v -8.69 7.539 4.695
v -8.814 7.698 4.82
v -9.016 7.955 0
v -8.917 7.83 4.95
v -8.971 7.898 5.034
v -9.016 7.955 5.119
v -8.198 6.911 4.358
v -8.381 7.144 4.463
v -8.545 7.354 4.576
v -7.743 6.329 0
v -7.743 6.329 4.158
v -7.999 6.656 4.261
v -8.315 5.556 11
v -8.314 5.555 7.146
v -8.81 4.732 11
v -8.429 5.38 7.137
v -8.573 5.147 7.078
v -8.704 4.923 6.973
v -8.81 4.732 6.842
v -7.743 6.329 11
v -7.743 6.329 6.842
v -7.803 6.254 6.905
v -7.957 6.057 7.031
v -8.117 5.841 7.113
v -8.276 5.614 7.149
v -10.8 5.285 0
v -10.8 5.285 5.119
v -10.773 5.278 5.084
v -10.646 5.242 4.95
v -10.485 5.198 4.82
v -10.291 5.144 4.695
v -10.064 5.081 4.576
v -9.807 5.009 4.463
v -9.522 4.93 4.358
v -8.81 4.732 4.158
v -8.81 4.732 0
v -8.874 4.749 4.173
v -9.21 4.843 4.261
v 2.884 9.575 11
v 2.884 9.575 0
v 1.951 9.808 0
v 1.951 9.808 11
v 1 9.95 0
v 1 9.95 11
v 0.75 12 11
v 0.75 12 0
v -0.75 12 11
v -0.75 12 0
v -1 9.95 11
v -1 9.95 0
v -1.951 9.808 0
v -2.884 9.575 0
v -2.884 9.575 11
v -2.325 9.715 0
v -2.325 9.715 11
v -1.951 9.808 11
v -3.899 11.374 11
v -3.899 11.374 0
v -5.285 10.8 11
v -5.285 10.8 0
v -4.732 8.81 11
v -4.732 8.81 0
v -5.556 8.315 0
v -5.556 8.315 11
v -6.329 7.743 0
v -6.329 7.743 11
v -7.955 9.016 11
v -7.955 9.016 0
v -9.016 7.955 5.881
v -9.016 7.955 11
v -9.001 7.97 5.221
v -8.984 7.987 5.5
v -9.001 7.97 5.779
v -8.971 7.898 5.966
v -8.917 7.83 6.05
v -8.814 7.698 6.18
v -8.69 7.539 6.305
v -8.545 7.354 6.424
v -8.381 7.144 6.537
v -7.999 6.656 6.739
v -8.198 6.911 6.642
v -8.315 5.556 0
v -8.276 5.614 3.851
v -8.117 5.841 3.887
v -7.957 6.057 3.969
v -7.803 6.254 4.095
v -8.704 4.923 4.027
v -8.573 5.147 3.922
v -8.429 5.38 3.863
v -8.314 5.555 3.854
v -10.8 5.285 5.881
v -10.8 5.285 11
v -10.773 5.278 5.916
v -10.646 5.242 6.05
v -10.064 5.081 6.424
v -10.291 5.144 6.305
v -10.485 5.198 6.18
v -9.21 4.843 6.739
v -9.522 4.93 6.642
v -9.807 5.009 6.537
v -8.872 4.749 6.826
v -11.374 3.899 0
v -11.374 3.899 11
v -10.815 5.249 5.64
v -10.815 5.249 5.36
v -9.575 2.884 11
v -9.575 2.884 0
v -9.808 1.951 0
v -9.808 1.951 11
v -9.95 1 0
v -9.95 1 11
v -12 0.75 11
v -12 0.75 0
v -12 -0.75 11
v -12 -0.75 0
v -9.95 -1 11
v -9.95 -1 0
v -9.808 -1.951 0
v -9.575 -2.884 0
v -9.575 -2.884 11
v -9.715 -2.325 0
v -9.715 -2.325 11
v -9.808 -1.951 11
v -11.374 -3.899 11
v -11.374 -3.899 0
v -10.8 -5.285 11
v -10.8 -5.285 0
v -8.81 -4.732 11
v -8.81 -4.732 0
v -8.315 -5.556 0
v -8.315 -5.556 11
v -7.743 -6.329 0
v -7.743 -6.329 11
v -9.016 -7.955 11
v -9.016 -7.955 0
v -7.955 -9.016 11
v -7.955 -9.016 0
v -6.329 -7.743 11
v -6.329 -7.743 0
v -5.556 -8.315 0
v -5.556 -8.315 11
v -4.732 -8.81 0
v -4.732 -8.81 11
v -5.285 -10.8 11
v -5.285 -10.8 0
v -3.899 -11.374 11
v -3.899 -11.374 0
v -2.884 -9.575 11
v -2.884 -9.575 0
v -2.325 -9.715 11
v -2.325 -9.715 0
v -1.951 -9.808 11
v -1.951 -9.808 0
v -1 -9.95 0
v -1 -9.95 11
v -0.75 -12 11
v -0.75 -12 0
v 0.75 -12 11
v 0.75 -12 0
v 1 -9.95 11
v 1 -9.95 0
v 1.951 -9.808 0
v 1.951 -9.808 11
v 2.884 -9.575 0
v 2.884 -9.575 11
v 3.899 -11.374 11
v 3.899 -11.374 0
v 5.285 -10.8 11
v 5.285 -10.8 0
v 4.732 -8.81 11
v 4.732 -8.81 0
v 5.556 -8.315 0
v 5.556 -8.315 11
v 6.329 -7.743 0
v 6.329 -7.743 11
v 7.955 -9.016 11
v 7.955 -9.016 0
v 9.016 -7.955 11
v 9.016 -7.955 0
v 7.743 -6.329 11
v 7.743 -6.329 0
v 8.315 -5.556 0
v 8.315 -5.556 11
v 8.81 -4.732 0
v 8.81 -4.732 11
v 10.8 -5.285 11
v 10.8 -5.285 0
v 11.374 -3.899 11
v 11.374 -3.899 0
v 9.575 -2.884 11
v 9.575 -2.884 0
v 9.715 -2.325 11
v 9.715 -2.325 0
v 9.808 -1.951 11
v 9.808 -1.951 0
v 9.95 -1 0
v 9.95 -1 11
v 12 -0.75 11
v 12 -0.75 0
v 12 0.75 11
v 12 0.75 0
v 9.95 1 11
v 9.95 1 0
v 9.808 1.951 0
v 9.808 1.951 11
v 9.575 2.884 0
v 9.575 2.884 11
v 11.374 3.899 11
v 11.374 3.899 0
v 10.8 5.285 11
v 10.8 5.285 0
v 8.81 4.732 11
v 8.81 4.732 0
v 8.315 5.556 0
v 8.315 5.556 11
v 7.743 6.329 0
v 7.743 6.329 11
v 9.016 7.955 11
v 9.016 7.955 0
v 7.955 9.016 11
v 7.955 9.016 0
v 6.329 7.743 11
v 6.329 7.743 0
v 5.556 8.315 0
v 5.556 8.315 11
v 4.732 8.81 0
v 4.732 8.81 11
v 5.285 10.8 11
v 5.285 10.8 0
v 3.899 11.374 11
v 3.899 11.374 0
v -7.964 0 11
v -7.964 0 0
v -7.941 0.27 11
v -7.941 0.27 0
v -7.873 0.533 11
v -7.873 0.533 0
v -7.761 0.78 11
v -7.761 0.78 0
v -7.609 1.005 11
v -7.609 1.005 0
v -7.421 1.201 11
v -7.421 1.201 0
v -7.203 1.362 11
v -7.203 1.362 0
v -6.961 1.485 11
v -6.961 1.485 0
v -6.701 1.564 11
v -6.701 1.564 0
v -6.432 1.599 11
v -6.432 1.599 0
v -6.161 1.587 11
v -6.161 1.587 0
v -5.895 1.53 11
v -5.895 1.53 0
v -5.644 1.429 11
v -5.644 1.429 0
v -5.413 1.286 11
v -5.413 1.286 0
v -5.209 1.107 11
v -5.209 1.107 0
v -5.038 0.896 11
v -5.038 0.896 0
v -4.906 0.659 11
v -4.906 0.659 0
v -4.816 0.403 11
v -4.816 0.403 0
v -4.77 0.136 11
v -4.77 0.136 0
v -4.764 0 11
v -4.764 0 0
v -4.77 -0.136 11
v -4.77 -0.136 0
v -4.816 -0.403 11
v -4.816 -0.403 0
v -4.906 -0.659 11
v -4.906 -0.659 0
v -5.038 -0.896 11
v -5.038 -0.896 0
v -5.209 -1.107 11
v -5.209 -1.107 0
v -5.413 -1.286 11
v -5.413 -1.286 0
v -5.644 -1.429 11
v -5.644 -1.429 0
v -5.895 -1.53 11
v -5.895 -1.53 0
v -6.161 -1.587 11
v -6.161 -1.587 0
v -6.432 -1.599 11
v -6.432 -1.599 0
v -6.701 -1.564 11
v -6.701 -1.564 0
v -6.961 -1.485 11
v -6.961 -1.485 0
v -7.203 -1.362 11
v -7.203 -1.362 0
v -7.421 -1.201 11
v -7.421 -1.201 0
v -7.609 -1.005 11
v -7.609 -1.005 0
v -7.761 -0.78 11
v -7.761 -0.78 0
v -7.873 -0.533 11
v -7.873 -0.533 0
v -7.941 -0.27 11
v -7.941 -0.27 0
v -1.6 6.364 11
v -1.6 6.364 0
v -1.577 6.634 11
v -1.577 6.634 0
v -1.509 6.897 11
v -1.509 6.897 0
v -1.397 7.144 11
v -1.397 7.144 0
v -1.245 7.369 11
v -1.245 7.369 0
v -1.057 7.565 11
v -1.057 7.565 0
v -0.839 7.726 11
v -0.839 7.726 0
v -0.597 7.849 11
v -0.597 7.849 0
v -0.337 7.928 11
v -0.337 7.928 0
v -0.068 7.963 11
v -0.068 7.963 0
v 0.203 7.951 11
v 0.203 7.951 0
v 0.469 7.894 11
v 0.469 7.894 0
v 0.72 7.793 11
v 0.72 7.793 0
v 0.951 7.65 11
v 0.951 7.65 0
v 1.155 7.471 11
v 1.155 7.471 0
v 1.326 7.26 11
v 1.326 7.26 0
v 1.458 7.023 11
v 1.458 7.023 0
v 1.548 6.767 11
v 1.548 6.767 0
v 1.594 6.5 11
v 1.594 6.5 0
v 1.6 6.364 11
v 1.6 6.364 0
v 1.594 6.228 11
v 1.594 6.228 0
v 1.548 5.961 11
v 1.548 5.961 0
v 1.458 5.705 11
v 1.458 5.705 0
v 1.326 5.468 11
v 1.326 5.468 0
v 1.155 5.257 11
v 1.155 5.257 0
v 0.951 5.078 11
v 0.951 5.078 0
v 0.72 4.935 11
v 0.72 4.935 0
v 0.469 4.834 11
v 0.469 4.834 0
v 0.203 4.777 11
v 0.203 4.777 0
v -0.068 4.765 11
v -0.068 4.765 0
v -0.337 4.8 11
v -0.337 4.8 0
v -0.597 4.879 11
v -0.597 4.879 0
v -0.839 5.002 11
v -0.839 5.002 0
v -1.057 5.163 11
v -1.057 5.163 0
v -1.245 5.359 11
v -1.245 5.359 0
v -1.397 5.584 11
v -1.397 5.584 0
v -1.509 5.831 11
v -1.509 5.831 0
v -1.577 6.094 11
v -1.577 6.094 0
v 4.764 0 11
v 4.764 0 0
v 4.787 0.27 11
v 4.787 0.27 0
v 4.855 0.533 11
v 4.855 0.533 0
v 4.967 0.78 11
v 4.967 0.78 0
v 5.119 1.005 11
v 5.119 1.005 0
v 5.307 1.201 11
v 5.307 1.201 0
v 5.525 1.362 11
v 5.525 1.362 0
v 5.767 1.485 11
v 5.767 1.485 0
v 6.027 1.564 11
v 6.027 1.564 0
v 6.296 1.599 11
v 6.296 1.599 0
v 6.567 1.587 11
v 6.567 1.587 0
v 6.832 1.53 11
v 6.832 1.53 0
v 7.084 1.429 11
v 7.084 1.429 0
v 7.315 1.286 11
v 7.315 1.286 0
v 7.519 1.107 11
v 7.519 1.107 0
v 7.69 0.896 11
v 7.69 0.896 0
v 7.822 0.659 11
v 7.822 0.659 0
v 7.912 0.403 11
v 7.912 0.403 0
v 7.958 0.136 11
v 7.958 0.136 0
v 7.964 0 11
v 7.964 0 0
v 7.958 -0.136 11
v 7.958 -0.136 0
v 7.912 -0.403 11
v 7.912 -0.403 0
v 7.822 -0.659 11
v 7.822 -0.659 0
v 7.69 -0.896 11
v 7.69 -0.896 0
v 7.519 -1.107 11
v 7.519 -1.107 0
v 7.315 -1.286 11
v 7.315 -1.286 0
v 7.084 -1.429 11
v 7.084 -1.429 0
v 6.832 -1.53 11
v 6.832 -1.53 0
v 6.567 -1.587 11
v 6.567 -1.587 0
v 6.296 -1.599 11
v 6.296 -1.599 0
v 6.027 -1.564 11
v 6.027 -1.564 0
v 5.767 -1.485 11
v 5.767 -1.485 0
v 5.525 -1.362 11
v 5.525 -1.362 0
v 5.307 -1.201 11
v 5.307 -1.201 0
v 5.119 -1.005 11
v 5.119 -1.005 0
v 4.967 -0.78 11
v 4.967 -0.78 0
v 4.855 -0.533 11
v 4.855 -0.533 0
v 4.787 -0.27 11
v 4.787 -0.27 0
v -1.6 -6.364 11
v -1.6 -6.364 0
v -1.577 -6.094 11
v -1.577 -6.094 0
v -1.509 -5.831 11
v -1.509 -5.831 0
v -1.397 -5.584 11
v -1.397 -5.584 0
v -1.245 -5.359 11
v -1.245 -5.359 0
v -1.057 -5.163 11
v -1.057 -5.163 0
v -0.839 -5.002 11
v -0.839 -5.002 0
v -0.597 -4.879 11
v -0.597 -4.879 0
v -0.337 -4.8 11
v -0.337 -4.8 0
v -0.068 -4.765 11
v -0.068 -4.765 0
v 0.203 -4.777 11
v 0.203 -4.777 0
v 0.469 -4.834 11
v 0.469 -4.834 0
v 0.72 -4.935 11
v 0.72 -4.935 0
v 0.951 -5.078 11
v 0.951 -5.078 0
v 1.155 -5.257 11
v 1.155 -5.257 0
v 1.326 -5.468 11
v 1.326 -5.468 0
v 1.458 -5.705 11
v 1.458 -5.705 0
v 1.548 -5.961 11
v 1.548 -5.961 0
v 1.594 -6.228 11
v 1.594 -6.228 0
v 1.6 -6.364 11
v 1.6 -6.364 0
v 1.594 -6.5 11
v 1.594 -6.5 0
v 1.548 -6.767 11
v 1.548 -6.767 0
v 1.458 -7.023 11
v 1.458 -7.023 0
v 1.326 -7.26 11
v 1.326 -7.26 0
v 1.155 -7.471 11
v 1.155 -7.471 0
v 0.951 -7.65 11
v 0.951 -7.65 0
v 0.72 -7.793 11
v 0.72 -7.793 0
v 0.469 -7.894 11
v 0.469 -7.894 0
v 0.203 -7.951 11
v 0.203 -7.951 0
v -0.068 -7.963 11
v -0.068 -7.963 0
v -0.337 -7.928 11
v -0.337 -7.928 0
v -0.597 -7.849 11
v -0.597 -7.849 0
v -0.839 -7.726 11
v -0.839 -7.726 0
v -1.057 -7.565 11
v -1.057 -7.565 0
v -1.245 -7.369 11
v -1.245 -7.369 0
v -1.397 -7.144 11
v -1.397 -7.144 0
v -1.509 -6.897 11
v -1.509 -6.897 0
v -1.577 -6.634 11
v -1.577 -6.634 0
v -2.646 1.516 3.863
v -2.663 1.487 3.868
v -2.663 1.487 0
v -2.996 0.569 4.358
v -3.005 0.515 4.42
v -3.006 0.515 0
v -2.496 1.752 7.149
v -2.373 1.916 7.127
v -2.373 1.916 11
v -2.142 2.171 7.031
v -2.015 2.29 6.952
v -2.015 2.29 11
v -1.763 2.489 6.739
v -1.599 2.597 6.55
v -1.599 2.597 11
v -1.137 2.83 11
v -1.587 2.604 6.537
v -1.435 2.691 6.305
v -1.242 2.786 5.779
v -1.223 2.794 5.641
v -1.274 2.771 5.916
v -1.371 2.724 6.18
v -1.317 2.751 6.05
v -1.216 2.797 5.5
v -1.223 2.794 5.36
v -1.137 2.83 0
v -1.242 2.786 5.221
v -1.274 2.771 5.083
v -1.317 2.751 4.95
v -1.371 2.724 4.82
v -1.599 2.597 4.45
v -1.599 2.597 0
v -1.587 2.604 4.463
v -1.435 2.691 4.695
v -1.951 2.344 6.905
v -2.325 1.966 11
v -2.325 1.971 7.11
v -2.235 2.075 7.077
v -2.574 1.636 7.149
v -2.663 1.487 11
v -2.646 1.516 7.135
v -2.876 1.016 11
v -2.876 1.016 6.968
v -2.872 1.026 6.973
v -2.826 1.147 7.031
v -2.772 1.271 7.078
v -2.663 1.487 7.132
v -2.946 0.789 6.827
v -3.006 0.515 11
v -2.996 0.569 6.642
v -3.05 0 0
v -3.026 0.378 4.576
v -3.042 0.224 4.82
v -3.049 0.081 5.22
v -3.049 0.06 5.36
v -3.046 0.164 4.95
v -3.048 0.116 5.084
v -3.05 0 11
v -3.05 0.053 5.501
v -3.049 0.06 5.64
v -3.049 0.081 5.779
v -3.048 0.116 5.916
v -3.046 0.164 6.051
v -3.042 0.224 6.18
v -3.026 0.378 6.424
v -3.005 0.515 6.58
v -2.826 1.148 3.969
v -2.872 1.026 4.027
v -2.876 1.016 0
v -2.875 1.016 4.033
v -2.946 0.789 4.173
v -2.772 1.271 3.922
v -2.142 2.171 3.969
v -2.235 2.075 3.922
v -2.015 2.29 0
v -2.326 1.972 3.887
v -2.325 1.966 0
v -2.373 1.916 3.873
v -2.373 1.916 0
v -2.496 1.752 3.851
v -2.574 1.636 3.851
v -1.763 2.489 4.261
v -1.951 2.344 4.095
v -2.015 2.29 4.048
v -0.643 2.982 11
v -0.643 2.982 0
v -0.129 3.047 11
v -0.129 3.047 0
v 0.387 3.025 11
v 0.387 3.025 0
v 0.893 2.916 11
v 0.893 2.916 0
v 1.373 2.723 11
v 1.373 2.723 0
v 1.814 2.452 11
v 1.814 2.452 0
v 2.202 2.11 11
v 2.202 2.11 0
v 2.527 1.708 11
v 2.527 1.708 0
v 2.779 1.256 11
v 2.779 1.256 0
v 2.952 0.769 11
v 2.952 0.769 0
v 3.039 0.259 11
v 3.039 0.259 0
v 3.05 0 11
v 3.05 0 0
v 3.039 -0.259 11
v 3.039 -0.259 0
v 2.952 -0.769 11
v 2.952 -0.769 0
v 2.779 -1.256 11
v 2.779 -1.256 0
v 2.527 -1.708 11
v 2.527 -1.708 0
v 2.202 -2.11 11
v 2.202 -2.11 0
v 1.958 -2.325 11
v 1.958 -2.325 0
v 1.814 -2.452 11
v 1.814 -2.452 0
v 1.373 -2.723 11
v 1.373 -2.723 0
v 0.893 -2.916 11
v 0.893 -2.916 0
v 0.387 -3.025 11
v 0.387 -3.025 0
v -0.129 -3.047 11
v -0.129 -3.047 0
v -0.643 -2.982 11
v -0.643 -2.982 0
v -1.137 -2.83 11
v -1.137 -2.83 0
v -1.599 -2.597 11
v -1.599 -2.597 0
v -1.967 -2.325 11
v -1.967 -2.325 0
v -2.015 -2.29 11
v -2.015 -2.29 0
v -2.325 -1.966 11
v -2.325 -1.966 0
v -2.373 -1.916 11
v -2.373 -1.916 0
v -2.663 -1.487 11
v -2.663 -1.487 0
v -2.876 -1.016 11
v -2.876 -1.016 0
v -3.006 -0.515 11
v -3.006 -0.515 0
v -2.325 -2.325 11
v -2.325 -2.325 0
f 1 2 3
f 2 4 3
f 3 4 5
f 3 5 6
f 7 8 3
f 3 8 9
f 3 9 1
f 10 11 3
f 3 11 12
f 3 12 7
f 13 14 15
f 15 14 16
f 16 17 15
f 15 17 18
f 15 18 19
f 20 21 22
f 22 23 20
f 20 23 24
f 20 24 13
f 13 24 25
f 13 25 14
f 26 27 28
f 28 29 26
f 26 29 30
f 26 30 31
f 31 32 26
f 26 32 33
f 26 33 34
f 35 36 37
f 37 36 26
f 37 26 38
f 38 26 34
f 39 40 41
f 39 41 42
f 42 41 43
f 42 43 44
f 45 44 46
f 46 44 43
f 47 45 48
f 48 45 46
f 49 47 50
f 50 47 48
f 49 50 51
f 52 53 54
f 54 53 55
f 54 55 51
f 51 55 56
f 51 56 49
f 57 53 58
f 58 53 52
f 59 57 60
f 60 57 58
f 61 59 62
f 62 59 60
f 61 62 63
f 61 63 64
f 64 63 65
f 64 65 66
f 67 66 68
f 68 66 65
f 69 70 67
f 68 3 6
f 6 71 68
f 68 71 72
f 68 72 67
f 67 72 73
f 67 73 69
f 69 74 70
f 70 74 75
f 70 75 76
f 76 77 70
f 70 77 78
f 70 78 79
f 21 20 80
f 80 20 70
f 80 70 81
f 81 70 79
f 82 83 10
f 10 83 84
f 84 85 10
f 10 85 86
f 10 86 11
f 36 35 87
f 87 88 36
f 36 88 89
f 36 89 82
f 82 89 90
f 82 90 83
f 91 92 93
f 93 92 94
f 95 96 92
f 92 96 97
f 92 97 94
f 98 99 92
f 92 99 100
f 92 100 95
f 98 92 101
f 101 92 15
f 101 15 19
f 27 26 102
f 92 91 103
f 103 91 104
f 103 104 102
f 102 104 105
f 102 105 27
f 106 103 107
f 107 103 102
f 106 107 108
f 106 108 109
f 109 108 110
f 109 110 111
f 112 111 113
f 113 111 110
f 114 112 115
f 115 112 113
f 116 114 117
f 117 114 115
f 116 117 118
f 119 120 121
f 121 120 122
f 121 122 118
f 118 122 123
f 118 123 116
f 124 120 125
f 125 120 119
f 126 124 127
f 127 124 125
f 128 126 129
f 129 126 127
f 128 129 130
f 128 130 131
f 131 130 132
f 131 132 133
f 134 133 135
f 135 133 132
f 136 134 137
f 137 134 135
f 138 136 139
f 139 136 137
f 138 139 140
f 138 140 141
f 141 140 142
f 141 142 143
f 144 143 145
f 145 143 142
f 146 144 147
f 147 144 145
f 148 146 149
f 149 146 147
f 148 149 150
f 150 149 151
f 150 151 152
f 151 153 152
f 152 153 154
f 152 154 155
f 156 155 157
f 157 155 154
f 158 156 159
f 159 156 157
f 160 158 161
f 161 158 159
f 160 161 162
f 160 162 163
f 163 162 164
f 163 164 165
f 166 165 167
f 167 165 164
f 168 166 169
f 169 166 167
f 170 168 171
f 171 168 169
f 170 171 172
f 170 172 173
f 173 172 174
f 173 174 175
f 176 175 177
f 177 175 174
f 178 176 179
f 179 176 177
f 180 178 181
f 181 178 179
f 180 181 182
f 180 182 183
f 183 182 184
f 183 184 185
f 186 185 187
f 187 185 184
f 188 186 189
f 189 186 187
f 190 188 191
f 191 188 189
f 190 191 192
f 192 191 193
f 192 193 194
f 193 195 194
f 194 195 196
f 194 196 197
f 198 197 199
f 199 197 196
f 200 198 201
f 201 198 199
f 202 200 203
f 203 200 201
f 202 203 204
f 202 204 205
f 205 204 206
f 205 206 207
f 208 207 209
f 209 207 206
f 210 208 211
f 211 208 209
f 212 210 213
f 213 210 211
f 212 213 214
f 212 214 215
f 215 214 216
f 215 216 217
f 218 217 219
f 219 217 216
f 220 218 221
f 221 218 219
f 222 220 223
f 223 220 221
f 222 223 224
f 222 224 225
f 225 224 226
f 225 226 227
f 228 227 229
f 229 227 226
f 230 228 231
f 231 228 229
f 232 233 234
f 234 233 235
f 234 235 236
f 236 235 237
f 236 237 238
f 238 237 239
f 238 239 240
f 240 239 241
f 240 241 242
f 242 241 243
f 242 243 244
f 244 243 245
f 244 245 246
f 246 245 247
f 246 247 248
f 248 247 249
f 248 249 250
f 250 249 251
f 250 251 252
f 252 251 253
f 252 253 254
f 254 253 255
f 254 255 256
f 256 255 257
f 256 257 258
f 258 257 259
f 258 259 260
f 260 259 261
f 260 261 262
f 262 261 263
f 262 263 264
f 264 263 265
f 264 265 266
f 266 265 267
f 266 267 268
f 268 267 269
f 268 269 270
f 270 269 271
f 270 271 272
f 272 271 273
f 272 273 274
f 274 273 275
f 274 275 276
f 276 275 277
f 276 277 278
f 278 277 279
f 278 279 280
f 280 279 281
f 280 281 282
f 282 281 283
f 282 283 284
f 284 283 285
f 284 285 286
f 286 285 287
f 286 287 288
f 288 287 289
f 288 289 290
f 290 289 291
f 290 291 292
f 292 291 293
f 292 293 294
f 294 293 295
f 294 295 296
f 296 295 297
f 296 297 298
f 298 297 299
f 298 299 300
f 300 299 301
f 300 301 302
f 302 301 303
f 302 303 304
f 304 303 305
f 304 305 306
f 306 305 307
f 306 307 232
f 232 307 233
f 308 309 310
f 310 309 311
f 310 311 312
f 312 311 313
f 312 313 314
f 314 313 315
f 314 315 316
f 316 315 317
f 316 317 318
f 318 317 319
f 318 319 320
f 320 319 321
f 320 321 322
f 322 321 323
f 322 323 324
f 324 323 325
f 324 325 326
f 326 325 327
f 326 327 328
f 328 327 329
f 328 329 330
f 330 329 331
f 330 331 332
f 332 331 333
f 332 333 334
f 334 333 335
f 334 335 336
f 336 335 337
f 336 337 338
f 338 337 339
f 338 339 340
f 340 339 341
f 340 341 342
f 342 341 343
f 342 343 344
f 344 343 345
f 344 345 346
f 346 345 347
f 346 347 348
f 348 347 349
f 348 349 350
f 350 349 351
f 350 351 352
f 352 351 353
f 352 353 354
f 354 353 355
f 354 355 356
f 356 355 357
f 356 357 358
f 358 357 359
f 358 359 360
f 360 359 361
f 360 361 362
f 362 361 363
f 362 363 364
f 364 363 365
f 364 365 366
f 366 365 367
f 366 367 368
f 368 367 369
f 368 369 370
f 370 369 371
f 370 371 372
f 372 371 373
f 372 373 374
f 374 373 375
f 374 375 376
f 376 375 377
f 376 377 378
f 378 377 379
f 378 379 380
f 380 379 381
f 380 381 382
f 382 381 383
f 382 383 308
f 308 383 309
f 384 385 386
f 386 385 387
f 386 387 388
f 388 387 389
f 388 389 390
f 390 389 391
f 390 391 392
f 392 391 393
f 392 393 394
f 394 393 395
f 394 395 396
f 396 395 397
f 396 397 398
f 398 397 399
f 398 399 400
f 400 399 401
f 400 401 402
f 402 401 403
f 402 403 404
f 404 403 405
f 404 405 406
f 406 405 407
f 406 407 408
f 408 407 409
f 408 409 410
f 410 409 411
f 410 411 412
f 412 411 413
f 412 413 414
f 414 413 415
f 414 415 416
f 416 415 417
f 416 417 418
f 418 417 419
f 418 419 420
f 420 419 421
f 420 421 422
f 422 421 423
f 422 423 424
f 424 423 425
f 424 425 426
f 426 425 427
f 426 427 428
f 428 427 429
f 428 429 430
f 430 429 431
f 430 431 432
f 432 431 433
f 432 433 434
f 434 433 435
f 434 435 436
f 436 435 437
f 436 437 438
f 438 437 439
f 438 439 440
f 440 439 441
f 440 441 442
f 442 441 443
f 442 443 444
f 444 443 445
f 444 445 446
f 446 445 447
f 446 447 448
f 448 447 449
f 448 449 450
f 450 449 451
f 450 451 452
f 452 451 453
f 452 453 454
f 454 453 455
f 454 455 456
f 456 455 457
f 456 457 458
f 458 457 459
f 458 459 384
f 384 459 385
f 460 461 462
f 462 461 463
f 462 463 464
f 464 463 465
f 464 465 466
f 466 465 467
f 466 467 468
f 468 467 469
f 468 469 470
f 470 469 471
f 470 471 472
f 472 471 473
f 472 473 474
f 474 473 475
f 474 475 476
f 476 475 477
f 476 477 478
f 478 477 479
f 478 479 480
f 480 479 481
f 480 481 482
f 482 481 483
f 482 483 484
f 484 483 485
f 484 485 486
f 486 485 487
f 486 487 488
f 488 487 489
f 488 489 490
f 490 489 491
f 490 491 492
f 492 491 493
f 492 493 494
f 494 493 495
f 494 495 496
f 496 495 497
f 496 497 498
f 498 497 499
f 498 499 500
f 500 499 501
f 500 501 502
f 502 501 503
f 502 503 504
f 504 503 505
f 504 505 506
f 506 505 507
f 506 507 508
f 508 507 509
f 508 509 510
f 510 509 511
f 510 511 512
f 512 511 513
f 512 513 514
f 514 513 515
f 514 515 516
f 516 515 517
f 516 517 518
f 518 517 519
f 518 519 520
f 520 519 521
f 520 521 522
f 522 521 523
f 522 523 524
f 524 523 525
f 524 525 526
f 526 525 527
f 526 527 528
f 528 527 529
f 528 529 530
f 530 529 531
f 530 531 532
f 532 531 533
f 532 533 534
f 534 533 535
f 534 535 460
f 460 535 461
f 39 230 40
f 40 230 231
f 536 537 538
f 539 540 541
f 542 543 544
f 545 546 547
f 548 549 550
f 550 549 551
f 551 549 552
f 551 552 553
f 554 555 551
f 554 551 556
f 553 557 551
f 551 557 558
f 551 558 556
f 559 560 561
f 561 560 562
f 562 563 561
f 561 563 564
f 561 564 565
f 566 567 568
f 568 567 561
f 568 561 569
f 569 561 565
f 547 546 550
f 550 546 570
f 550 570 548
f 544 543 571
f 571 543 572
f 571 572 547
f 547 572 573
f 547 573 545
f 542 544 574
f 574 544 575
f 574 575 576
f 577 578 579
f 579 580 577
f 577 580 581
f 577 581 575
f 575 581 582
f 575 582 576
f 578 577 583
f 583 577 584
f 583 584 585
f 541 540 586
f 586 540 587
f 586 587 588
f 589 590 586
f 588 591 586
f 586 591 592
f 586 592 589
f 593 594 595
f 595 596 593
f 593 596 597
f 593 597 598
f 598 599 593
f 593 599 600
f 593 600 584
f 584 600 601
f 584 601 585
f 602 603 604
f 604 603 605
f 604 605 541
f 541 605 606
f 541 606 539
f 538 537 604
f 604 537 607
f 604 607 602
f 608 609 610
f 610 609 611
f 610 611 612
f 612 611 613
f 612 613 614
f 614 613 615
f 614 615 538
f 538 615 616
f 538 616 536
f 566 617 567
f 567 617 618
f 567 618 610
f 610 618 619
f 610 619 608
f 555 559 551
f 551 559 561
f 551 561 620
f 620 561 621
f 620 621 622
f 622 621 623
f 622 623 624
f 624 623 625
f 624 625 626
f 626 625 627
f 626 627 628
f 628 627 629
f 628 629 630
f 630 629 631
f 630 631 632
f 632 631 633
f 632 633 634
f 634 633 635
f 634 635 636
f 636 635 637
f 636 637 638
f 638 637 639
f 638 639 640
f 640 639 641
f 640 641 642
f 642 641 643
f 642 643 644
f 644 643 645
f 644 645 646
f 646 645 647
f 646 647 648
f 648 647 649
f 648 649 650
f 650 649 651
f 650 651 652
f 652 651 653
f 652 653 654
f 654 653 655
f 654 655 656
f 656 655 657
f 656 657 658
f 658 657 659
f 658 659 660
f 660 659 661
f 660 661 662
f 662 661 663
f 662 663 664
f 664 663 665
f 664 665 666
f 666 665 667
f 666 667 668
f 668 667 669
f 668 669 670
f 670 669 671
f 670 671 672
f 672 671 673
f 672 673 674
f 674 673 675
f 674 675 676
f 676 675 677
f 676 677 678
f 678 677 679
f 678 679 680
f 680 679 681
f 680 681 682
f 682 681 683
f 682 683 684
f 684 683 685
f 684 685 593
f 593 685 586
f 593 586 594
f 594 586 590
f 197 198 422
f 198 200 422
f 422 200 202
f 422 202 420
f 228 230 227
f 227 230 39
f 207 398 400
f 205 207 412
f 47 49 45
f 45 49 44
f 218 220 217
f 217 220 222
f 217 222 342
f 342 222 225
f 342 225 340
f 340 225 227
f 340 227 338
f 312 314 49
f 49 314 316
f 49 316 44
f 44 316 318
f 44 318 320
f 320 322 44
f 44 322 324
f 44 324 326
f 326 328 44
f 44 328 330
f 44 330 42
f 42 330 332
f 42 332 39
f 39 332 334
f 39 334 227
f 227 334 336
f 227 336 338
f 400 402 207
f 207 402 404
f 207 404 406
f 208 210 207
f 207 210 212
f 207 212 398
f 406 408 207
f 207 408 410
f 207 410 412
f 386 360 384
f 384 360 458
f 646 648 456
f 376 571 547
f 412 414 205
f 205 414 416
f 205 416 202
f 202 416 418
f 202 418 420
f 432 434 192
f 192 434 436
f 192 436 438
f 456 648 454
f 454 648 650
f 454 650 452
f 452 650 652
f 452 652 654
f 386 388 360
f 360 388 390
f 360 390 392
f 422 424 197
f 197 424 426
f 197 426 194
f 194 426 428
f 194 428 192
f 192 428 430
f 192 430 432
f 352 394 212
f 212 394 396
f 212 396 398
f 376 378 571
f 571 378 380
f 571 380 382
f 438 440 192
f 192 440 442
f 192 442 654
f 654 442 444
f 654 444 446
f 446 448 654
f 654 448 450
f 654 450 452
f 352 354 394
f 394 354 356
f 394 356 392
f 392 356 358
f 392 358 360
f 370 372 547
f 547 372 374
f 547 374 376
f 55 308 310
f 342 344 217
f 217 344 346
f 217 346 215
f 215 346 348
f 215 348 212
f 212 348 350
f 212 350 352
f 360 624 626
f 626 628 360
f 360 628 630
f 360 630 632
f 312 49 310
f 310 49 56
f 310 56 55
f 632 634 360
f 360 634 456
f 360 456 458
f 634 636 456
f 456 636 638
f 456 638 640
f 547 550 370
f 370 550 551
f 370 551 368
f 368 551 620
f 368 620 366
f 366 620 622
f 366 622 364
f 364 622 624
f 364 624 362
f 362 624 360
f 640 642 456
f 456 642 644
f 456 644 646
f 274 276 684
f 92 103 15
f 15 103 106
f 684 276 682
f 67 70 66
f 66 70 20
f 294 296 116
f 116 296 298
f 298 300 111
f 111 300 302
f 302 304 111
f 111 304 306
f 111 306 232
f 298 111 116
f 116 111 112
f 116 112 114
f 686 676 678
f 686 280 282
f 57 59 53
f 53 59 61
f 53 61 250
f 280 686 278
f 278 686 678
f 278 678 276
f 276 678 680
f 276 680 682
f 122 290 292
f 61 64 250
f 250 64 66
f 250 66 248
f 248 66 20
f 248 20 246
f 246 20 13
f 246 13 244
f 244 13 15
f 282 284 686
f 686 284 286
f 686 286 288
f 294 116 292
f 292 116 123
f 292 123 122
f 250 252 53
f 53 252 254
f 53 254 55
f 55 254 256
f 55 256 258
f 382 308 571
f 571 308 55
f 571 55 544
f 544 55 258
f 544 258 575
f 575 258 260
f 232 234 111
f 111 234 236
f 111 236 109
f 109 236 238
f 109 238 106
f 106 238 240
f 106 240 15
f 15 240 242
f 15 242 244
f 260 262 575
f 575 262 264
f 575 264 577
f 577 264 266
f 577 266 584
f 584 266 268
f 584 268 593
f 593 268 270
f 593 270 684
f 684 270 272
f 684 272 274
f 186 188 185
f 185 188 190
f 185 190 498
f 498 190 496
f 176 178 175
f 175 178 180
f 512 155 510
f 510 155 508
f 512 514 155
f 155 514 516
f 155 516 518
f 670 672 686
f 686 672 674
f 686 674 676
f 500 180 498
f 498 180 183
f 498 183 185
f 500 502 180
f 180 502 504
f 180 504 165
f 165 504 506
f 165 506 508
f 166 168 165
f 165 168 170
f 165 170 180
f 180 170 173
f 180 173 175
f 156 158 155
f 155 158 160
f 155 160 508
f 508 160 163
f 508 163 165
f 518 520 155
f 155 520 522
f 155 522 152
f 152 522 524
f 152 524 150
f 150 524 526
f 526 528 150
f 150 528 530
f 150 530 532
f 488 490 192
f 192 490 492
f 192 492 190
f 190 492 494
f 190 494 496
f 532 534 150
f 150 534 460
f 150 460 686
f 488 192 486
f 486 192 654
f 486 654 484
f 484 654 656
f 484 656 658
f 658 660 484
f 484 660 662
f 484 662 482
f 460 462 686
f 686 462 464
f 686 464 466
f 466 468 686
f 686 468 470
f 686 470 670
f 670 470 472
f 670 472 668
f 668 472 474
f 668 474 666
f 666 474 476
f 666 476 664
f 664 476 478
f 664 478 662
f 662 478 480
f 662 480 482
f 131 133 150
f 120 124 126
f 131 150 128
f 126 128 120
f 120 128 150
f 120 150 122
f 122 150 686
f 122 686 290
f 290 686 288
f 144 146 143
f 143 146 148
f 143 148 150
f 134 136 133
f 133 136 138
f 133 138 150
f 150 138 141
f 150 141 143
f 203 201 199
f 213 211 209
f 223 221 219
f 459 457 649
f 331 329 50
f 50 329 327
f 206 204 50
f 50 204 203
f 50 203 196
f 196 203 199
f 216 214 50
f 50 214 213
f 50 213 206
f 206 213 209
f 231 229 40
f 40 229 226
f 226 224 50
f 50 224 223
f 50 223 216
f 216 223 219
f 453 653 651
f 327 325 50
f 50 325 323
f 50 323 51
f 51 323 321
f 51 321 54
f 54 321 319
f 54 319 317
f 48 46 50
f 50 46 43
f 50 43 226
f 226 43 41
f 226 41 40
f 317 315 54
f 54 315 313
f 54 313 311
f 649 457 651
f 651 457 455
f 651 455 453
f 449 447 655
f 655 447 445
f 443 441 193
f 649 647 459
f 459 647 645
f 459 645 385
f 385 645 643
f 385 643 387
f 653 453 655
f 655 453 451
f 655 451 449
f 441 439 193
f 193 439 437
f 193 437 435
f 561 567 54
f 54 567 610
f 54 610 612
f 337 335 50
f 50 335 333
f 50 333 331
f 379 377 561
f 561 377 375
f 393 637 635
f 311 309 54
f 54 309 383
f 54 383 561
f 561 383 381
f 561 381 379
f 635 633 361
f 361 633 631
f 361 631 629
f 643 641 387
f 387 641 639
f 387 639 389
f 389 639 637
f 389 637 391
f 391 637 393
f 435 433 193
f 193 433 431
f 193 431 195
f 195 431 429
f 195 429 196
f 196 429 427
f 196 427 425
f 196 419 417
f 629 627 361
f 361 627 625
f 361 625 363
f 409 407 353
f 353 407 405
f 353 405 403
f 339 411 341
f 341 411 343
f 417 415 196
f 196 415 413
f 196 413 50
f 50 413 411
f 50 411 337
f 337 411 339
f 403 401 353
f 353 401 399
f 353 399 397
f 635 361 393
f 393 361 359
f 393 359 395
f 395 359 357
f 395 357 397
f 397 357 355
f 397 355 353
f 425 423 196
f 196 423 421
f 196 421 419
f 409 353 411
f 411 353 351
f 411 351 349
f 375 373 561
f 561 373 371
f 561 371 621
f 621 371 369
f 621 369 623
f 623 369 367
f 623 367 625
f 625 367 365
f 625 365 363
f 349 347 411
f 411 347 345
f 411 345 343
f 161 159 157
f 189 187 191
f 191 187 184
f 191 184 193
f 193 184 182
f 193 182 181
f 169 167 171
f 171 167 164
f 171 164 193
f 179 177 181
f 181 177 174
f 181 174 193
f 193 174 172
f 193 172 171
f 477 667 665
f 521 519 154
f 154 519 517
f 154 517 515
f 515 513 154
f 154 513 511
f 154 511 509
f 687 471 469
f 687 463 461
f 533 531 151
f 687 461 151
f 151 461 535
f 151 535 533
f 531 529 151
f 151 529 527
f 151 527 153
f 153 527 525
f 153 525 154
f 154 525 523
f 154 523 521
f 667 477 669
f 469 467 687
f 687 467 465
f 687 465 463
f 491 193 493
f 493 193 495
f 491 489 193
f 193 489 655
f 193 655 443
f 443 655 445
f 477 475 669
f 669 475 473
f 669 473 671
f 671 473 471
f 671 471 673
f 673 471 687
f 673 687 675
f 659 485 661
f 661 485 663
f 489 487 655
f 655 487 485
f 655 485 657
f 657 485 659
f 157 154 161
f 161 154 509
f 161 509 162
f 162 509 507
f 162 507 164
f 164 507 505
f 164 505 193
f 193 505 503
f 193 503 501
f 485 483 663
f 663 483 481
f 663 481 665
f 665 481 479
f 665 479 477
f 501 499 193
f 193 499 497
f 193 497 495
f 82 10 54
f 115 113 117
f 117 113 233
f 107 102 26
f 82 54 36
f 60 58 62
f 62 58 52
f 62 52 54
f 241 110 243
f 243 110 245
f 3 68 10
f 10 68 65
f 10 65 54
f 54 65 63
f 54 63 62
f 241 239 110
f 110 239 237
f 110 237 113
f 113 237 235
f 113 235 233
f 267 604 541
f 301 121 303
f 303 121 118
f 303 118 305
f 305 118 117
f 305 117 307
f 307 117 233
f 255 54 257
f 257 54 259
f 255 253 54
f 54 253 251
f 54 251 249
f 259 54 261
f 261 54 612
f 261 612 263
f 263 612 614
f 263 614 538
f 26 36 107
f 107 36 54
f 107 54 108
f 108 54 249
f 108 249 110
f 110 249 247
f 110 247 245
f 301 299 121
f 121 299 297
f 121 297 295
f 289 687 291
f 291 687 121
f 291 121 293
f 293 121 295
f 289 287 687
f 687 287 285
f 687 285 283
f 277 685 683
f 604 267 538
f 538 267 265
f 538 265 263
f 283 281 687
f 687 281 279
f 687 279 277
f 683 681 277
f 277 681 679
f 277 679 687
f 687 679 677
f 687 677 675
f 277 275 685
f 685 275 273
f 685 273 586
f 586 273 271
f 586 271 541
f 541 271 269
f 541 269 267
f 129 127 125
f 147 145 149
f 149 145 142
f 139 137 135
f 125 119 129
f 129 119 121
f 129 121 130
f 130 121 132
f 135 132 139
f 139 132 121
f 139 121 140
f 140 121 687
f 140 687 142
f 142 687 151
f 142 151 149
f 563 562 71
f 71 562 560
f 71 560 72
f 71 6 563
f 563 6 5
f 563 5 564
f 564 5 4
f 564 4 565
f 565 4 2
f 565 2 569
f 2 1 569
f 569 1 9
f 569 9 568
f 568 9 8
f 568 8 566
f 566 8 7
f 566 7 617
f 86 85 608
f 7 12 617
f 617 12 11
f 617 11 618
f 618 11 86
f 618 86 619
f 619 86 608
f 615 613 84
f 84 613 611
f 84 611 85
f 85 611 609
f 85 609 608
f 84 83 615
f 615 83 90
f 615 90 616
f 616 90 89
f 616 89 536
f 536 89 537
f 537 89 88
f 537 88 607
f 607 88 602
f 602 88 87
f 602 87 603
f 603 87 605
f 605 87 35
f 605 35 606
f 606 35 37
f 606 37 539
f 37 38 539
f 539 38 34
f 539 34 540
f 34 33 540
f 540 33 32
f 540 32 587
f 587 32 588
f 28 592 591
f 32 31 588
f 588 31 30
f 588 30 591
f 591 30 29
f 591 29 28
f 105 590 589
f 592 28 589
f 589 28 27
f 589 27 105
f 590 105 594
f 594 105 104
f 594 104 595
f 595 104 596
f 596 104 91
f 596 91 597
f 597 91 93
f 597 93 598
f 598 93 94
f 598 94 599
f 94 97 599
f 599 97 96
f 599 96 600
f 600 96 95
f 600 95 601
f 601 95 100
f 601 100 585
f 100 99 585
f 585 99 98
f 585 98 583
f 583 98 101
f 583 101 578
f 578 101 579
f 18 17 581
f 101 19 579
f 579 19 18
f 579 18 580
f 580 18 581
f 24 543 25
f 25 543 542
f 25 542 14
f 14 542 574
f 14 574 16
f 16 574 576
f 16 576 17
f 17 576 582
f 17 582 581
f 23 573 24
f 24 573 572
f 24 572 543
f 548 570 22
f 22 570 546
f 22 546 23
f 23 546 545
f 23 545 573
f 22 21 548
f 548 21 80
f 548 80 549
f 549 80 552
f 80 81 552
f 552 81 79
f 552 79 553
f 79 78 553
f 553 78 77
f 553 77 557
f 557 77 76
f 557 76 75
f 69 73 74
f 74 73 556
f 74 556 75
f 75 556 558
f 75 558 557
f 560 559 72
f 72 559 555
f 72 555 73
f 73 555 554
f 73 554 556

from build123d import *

# Parameters (mm, degrees)
SKETCH_1_R          = 1.6
SKETCH_1_R_2        = 3.05
EXTRUDE_1_DEPTH     = 11
SKETCH_2_R          = 1.65
CUT_EXTRUDE_3_DEPTH = 21.223748416


with BuildPart() as part:
    # ｽｹｯﾁ1 → ﾎﾞｽ - 押し出し1 (new body)
    with BuildSketch(Plane.XY):
        with BuildLine():
            Line((-0.75, 12), (-1, 9.949874371))
            ThreePointArc((-1, 9.949874371), (-1.95090322, 9.807852804), (-2.883772543, 9.575168715))
            Line((-2.883772543, 9.575168715), (-3.899291539, 11.373566964))
            Line((-3.899291539, 11.373566964), (-5.285110838, 10.799541816))
            Line((-5.285110838, 10.799541816), (-4.731531608, 8.80980185))
            ThreePointArc((-4.731531608, 8.80980185), (-5.55570233, 8.314696123), (-6.328516859, 7.742730421))
            Line((-6.328516859, 7.742730421), (-7.954951288, 9.01561146))
            Line((-7.954951288, 9.01561146), (-9.01561146, 7.954951288))
            Line((-9.01561146, 7.954951288), (-7.742730421, 6.328516859))
            ThreePointArc((-7.742730421, 6.328516859), (-8.314696123, 5.55570233), (-8.80980185, 4.731531608))
            Line((-8.80980185, 4.731531608), (-10.799541816, 5.285110838))
            Line((-10.799541816, 5.285110838), (-11.373566964, 3.899291539))
            Line((-11.373566964, 3.899291539), (-9.575168715, 2.883772543))
            ThreePointArc((-9.575168715, 2.883772543), (-9.807852804, 1.95090322), (-9.949874371, 1))
            Line((-9.949874371, 1), (-12, 0.75))
            Line((-12, 0.75), (-12, -0.75))
            Line((-12, -0.75), (-9.949874371, -1))
            ThreePointArc((-9.949874371, -1), (-9.807852804, -1.95090322), (-9.575168715, -2.883772543))
            Line((-9.575168715, -2.883772543), (-11.373566964, -3.899291539))
            Line((-11.373566964, -3.899291539), (-10.799541816, -5.285110838))
            Line((-10.799541816, -5.285110838), (-8.80980185, -4.731531608))
            ThreePointArc((-8.80980185, -4.731531608), (-8.314696123, -5.55570233), (-7.742730421, -6.328516859))
            Line((-7.742730421, -6.328516859), (-9.01561146, -7.954951288))
            Line((-9.01561146, -7.954951288), (-7.954951288, -9.01561146))
            Line((-7.954951288, -9.01561146), (-6.328516859, -7.742730421))
            ThreePointArc((-6.328516859, -7.742730421), (-5.55570233, -8.314696123), (-4.731531608, -8.80980185))
            Line((-4.731531608, -8.80980185), (-5.285110838, -10.799541816))
            Line((-5.285110838, -10.799541816), (-3.899291539, -11.373566964))
            Line((-3.899291539, -11.373566964), (-2.883772543, -9.575168715))
            ThreePointArc((-2.883772543, -9.575168715), (-1.95090322, -9.807852804), (-1, -9.949874371))
            Line((-1, -9.949874371), (-0.75, -12))
            Line((-0.75, -12), (0.75, -12))
            Line((0.75, -12), (1, -9.949874371))
            ThreePointArc((1, -9.949874371), (1.95090322, -9.807852804), (2.883772543, -9.575168715))
            Line((2.883772543, -9.575168715), (3.899291539, -11.373566964))
            Line((3.899291539, -11.373566964), (5.285110838, -10.799541816))
            Line((5.285110838, -10.799541816), (4.731531608, -8.80980185))
            ThreePointArc((4.731531608, -8.80980185), (5.55570233, -8.314696123), (6.328516859, -7.742730421))
            Line((6.328516859, -7.742730421), (7.954951288, -9.01561146))
            Line((7.954951288, -9.01561146), (9.01561146, -7.954951288))
            Line((9.01561146, -7.954951288), (7.742730421, -6.328516859))
            ThreePointArc((7.742730421, -6.328516859), (8.314696123, -5.55570233), (8.80980185, -4.731531608))
            Line((8.80980185, -4.731531608), (10.799541816, -5.285110838))
            Line((10.799541816, -5.285110838), (11.373566964, -3.899291539))
            Line((11.373566964, -3.899291539), (9.575168715, -2.883772543))
            ThreePointArc((9.575168715, -2.883772543), (9.807852804, -1.95090322), (9.949874371, -1))
            Line((9.949874371, -1), (12, -0.75))
            Line((12, -0.75), (12, 0.75))
            Line((12, 0.75), (9.949874371, 1))
            ThreePointArc((9.949874371, 1), (9.807852804, 1.95090322), (9.575168715, 2.883772543))
            Line((9.575168715, 2.883772543), (11.373566964, 3.899291539))
            Line((11.373566964, 3.899291539), (10.799541816, 5.285110838))
            Line((10.799541816, 5.285110838), (8.80980185, 4.731531608))
            ThreePointArc((8.80980185, 4.731531608), (8.314696123, 5.55570233), (7.742730421, 6.328516859))
            Line((7.742730421, 6.328516859), (9.01561146, 7.954951288))
            Line((9.01561146, 7.954951288), (7.954951288, 9.01561146))
            Line((7.954951288, 9.01561146), (6.328516859, 7.742730421))
            ThreePointArc((6.328516859, 7.742730421), (5.55570233, 8.314696123), (4.731531608, 8.80980185))
            Line((4.731531608, 8.80980185), (5.285110838, 10.799541816))
            Line((5.285110838, 10.799541816), (3.899291539, 11.373566964))
            Line((3.899291539, 11.373566964), (2.883772543, 9.575168715))
            ThreePointArc((2.883772543, 9.575168715), (1.95090322, 9.807852804), (1, 9.949874371))
            Line((1, 9.949874371), (0.75, 12))
            Line((0.75, 12), (-0.75, 12))
        make_face()
        with Locations((0, 6.363961031)):
            Circle(SKETCH_1_R, mode=Mode.SUBTRACT)
        with Locations((0, -6.363961031)):
            Circle(SKETCH_1_R, mode=Mode.SUBTRACT)
        with Locations((-6.363961031, 0)):
            Circle(SKETCH_1_R, mode=Mode.SUBTRACT)
        Circle(SKETCH_1_R_2, mode=Mode.SUBTRACT)
        with Locations((6.363961031, 0)):
            Circle(SKETCH_1_R, mode=Mode.SUBTRACT)
    extrude(amount=EXTRUDE_1_DEPTH)

    # ｽｹｯﾁ2 → ｶｯﾄ - 押し出し3 (cut, through all)
    with BuildSketch(Plane(origin=(0, 0, 0), x_dir=(0, 0, -1), z_dir=(0.8314696123025446, -0.5555702330196034, 0))):
        with Locations((-5.5, 0)):
            Circle(SKETCH_2_R)
    extrude(amount=-CUT_EXTRUDE_3_DEPTH, mode=Mode.SUBTRACT)


solid = part.part
